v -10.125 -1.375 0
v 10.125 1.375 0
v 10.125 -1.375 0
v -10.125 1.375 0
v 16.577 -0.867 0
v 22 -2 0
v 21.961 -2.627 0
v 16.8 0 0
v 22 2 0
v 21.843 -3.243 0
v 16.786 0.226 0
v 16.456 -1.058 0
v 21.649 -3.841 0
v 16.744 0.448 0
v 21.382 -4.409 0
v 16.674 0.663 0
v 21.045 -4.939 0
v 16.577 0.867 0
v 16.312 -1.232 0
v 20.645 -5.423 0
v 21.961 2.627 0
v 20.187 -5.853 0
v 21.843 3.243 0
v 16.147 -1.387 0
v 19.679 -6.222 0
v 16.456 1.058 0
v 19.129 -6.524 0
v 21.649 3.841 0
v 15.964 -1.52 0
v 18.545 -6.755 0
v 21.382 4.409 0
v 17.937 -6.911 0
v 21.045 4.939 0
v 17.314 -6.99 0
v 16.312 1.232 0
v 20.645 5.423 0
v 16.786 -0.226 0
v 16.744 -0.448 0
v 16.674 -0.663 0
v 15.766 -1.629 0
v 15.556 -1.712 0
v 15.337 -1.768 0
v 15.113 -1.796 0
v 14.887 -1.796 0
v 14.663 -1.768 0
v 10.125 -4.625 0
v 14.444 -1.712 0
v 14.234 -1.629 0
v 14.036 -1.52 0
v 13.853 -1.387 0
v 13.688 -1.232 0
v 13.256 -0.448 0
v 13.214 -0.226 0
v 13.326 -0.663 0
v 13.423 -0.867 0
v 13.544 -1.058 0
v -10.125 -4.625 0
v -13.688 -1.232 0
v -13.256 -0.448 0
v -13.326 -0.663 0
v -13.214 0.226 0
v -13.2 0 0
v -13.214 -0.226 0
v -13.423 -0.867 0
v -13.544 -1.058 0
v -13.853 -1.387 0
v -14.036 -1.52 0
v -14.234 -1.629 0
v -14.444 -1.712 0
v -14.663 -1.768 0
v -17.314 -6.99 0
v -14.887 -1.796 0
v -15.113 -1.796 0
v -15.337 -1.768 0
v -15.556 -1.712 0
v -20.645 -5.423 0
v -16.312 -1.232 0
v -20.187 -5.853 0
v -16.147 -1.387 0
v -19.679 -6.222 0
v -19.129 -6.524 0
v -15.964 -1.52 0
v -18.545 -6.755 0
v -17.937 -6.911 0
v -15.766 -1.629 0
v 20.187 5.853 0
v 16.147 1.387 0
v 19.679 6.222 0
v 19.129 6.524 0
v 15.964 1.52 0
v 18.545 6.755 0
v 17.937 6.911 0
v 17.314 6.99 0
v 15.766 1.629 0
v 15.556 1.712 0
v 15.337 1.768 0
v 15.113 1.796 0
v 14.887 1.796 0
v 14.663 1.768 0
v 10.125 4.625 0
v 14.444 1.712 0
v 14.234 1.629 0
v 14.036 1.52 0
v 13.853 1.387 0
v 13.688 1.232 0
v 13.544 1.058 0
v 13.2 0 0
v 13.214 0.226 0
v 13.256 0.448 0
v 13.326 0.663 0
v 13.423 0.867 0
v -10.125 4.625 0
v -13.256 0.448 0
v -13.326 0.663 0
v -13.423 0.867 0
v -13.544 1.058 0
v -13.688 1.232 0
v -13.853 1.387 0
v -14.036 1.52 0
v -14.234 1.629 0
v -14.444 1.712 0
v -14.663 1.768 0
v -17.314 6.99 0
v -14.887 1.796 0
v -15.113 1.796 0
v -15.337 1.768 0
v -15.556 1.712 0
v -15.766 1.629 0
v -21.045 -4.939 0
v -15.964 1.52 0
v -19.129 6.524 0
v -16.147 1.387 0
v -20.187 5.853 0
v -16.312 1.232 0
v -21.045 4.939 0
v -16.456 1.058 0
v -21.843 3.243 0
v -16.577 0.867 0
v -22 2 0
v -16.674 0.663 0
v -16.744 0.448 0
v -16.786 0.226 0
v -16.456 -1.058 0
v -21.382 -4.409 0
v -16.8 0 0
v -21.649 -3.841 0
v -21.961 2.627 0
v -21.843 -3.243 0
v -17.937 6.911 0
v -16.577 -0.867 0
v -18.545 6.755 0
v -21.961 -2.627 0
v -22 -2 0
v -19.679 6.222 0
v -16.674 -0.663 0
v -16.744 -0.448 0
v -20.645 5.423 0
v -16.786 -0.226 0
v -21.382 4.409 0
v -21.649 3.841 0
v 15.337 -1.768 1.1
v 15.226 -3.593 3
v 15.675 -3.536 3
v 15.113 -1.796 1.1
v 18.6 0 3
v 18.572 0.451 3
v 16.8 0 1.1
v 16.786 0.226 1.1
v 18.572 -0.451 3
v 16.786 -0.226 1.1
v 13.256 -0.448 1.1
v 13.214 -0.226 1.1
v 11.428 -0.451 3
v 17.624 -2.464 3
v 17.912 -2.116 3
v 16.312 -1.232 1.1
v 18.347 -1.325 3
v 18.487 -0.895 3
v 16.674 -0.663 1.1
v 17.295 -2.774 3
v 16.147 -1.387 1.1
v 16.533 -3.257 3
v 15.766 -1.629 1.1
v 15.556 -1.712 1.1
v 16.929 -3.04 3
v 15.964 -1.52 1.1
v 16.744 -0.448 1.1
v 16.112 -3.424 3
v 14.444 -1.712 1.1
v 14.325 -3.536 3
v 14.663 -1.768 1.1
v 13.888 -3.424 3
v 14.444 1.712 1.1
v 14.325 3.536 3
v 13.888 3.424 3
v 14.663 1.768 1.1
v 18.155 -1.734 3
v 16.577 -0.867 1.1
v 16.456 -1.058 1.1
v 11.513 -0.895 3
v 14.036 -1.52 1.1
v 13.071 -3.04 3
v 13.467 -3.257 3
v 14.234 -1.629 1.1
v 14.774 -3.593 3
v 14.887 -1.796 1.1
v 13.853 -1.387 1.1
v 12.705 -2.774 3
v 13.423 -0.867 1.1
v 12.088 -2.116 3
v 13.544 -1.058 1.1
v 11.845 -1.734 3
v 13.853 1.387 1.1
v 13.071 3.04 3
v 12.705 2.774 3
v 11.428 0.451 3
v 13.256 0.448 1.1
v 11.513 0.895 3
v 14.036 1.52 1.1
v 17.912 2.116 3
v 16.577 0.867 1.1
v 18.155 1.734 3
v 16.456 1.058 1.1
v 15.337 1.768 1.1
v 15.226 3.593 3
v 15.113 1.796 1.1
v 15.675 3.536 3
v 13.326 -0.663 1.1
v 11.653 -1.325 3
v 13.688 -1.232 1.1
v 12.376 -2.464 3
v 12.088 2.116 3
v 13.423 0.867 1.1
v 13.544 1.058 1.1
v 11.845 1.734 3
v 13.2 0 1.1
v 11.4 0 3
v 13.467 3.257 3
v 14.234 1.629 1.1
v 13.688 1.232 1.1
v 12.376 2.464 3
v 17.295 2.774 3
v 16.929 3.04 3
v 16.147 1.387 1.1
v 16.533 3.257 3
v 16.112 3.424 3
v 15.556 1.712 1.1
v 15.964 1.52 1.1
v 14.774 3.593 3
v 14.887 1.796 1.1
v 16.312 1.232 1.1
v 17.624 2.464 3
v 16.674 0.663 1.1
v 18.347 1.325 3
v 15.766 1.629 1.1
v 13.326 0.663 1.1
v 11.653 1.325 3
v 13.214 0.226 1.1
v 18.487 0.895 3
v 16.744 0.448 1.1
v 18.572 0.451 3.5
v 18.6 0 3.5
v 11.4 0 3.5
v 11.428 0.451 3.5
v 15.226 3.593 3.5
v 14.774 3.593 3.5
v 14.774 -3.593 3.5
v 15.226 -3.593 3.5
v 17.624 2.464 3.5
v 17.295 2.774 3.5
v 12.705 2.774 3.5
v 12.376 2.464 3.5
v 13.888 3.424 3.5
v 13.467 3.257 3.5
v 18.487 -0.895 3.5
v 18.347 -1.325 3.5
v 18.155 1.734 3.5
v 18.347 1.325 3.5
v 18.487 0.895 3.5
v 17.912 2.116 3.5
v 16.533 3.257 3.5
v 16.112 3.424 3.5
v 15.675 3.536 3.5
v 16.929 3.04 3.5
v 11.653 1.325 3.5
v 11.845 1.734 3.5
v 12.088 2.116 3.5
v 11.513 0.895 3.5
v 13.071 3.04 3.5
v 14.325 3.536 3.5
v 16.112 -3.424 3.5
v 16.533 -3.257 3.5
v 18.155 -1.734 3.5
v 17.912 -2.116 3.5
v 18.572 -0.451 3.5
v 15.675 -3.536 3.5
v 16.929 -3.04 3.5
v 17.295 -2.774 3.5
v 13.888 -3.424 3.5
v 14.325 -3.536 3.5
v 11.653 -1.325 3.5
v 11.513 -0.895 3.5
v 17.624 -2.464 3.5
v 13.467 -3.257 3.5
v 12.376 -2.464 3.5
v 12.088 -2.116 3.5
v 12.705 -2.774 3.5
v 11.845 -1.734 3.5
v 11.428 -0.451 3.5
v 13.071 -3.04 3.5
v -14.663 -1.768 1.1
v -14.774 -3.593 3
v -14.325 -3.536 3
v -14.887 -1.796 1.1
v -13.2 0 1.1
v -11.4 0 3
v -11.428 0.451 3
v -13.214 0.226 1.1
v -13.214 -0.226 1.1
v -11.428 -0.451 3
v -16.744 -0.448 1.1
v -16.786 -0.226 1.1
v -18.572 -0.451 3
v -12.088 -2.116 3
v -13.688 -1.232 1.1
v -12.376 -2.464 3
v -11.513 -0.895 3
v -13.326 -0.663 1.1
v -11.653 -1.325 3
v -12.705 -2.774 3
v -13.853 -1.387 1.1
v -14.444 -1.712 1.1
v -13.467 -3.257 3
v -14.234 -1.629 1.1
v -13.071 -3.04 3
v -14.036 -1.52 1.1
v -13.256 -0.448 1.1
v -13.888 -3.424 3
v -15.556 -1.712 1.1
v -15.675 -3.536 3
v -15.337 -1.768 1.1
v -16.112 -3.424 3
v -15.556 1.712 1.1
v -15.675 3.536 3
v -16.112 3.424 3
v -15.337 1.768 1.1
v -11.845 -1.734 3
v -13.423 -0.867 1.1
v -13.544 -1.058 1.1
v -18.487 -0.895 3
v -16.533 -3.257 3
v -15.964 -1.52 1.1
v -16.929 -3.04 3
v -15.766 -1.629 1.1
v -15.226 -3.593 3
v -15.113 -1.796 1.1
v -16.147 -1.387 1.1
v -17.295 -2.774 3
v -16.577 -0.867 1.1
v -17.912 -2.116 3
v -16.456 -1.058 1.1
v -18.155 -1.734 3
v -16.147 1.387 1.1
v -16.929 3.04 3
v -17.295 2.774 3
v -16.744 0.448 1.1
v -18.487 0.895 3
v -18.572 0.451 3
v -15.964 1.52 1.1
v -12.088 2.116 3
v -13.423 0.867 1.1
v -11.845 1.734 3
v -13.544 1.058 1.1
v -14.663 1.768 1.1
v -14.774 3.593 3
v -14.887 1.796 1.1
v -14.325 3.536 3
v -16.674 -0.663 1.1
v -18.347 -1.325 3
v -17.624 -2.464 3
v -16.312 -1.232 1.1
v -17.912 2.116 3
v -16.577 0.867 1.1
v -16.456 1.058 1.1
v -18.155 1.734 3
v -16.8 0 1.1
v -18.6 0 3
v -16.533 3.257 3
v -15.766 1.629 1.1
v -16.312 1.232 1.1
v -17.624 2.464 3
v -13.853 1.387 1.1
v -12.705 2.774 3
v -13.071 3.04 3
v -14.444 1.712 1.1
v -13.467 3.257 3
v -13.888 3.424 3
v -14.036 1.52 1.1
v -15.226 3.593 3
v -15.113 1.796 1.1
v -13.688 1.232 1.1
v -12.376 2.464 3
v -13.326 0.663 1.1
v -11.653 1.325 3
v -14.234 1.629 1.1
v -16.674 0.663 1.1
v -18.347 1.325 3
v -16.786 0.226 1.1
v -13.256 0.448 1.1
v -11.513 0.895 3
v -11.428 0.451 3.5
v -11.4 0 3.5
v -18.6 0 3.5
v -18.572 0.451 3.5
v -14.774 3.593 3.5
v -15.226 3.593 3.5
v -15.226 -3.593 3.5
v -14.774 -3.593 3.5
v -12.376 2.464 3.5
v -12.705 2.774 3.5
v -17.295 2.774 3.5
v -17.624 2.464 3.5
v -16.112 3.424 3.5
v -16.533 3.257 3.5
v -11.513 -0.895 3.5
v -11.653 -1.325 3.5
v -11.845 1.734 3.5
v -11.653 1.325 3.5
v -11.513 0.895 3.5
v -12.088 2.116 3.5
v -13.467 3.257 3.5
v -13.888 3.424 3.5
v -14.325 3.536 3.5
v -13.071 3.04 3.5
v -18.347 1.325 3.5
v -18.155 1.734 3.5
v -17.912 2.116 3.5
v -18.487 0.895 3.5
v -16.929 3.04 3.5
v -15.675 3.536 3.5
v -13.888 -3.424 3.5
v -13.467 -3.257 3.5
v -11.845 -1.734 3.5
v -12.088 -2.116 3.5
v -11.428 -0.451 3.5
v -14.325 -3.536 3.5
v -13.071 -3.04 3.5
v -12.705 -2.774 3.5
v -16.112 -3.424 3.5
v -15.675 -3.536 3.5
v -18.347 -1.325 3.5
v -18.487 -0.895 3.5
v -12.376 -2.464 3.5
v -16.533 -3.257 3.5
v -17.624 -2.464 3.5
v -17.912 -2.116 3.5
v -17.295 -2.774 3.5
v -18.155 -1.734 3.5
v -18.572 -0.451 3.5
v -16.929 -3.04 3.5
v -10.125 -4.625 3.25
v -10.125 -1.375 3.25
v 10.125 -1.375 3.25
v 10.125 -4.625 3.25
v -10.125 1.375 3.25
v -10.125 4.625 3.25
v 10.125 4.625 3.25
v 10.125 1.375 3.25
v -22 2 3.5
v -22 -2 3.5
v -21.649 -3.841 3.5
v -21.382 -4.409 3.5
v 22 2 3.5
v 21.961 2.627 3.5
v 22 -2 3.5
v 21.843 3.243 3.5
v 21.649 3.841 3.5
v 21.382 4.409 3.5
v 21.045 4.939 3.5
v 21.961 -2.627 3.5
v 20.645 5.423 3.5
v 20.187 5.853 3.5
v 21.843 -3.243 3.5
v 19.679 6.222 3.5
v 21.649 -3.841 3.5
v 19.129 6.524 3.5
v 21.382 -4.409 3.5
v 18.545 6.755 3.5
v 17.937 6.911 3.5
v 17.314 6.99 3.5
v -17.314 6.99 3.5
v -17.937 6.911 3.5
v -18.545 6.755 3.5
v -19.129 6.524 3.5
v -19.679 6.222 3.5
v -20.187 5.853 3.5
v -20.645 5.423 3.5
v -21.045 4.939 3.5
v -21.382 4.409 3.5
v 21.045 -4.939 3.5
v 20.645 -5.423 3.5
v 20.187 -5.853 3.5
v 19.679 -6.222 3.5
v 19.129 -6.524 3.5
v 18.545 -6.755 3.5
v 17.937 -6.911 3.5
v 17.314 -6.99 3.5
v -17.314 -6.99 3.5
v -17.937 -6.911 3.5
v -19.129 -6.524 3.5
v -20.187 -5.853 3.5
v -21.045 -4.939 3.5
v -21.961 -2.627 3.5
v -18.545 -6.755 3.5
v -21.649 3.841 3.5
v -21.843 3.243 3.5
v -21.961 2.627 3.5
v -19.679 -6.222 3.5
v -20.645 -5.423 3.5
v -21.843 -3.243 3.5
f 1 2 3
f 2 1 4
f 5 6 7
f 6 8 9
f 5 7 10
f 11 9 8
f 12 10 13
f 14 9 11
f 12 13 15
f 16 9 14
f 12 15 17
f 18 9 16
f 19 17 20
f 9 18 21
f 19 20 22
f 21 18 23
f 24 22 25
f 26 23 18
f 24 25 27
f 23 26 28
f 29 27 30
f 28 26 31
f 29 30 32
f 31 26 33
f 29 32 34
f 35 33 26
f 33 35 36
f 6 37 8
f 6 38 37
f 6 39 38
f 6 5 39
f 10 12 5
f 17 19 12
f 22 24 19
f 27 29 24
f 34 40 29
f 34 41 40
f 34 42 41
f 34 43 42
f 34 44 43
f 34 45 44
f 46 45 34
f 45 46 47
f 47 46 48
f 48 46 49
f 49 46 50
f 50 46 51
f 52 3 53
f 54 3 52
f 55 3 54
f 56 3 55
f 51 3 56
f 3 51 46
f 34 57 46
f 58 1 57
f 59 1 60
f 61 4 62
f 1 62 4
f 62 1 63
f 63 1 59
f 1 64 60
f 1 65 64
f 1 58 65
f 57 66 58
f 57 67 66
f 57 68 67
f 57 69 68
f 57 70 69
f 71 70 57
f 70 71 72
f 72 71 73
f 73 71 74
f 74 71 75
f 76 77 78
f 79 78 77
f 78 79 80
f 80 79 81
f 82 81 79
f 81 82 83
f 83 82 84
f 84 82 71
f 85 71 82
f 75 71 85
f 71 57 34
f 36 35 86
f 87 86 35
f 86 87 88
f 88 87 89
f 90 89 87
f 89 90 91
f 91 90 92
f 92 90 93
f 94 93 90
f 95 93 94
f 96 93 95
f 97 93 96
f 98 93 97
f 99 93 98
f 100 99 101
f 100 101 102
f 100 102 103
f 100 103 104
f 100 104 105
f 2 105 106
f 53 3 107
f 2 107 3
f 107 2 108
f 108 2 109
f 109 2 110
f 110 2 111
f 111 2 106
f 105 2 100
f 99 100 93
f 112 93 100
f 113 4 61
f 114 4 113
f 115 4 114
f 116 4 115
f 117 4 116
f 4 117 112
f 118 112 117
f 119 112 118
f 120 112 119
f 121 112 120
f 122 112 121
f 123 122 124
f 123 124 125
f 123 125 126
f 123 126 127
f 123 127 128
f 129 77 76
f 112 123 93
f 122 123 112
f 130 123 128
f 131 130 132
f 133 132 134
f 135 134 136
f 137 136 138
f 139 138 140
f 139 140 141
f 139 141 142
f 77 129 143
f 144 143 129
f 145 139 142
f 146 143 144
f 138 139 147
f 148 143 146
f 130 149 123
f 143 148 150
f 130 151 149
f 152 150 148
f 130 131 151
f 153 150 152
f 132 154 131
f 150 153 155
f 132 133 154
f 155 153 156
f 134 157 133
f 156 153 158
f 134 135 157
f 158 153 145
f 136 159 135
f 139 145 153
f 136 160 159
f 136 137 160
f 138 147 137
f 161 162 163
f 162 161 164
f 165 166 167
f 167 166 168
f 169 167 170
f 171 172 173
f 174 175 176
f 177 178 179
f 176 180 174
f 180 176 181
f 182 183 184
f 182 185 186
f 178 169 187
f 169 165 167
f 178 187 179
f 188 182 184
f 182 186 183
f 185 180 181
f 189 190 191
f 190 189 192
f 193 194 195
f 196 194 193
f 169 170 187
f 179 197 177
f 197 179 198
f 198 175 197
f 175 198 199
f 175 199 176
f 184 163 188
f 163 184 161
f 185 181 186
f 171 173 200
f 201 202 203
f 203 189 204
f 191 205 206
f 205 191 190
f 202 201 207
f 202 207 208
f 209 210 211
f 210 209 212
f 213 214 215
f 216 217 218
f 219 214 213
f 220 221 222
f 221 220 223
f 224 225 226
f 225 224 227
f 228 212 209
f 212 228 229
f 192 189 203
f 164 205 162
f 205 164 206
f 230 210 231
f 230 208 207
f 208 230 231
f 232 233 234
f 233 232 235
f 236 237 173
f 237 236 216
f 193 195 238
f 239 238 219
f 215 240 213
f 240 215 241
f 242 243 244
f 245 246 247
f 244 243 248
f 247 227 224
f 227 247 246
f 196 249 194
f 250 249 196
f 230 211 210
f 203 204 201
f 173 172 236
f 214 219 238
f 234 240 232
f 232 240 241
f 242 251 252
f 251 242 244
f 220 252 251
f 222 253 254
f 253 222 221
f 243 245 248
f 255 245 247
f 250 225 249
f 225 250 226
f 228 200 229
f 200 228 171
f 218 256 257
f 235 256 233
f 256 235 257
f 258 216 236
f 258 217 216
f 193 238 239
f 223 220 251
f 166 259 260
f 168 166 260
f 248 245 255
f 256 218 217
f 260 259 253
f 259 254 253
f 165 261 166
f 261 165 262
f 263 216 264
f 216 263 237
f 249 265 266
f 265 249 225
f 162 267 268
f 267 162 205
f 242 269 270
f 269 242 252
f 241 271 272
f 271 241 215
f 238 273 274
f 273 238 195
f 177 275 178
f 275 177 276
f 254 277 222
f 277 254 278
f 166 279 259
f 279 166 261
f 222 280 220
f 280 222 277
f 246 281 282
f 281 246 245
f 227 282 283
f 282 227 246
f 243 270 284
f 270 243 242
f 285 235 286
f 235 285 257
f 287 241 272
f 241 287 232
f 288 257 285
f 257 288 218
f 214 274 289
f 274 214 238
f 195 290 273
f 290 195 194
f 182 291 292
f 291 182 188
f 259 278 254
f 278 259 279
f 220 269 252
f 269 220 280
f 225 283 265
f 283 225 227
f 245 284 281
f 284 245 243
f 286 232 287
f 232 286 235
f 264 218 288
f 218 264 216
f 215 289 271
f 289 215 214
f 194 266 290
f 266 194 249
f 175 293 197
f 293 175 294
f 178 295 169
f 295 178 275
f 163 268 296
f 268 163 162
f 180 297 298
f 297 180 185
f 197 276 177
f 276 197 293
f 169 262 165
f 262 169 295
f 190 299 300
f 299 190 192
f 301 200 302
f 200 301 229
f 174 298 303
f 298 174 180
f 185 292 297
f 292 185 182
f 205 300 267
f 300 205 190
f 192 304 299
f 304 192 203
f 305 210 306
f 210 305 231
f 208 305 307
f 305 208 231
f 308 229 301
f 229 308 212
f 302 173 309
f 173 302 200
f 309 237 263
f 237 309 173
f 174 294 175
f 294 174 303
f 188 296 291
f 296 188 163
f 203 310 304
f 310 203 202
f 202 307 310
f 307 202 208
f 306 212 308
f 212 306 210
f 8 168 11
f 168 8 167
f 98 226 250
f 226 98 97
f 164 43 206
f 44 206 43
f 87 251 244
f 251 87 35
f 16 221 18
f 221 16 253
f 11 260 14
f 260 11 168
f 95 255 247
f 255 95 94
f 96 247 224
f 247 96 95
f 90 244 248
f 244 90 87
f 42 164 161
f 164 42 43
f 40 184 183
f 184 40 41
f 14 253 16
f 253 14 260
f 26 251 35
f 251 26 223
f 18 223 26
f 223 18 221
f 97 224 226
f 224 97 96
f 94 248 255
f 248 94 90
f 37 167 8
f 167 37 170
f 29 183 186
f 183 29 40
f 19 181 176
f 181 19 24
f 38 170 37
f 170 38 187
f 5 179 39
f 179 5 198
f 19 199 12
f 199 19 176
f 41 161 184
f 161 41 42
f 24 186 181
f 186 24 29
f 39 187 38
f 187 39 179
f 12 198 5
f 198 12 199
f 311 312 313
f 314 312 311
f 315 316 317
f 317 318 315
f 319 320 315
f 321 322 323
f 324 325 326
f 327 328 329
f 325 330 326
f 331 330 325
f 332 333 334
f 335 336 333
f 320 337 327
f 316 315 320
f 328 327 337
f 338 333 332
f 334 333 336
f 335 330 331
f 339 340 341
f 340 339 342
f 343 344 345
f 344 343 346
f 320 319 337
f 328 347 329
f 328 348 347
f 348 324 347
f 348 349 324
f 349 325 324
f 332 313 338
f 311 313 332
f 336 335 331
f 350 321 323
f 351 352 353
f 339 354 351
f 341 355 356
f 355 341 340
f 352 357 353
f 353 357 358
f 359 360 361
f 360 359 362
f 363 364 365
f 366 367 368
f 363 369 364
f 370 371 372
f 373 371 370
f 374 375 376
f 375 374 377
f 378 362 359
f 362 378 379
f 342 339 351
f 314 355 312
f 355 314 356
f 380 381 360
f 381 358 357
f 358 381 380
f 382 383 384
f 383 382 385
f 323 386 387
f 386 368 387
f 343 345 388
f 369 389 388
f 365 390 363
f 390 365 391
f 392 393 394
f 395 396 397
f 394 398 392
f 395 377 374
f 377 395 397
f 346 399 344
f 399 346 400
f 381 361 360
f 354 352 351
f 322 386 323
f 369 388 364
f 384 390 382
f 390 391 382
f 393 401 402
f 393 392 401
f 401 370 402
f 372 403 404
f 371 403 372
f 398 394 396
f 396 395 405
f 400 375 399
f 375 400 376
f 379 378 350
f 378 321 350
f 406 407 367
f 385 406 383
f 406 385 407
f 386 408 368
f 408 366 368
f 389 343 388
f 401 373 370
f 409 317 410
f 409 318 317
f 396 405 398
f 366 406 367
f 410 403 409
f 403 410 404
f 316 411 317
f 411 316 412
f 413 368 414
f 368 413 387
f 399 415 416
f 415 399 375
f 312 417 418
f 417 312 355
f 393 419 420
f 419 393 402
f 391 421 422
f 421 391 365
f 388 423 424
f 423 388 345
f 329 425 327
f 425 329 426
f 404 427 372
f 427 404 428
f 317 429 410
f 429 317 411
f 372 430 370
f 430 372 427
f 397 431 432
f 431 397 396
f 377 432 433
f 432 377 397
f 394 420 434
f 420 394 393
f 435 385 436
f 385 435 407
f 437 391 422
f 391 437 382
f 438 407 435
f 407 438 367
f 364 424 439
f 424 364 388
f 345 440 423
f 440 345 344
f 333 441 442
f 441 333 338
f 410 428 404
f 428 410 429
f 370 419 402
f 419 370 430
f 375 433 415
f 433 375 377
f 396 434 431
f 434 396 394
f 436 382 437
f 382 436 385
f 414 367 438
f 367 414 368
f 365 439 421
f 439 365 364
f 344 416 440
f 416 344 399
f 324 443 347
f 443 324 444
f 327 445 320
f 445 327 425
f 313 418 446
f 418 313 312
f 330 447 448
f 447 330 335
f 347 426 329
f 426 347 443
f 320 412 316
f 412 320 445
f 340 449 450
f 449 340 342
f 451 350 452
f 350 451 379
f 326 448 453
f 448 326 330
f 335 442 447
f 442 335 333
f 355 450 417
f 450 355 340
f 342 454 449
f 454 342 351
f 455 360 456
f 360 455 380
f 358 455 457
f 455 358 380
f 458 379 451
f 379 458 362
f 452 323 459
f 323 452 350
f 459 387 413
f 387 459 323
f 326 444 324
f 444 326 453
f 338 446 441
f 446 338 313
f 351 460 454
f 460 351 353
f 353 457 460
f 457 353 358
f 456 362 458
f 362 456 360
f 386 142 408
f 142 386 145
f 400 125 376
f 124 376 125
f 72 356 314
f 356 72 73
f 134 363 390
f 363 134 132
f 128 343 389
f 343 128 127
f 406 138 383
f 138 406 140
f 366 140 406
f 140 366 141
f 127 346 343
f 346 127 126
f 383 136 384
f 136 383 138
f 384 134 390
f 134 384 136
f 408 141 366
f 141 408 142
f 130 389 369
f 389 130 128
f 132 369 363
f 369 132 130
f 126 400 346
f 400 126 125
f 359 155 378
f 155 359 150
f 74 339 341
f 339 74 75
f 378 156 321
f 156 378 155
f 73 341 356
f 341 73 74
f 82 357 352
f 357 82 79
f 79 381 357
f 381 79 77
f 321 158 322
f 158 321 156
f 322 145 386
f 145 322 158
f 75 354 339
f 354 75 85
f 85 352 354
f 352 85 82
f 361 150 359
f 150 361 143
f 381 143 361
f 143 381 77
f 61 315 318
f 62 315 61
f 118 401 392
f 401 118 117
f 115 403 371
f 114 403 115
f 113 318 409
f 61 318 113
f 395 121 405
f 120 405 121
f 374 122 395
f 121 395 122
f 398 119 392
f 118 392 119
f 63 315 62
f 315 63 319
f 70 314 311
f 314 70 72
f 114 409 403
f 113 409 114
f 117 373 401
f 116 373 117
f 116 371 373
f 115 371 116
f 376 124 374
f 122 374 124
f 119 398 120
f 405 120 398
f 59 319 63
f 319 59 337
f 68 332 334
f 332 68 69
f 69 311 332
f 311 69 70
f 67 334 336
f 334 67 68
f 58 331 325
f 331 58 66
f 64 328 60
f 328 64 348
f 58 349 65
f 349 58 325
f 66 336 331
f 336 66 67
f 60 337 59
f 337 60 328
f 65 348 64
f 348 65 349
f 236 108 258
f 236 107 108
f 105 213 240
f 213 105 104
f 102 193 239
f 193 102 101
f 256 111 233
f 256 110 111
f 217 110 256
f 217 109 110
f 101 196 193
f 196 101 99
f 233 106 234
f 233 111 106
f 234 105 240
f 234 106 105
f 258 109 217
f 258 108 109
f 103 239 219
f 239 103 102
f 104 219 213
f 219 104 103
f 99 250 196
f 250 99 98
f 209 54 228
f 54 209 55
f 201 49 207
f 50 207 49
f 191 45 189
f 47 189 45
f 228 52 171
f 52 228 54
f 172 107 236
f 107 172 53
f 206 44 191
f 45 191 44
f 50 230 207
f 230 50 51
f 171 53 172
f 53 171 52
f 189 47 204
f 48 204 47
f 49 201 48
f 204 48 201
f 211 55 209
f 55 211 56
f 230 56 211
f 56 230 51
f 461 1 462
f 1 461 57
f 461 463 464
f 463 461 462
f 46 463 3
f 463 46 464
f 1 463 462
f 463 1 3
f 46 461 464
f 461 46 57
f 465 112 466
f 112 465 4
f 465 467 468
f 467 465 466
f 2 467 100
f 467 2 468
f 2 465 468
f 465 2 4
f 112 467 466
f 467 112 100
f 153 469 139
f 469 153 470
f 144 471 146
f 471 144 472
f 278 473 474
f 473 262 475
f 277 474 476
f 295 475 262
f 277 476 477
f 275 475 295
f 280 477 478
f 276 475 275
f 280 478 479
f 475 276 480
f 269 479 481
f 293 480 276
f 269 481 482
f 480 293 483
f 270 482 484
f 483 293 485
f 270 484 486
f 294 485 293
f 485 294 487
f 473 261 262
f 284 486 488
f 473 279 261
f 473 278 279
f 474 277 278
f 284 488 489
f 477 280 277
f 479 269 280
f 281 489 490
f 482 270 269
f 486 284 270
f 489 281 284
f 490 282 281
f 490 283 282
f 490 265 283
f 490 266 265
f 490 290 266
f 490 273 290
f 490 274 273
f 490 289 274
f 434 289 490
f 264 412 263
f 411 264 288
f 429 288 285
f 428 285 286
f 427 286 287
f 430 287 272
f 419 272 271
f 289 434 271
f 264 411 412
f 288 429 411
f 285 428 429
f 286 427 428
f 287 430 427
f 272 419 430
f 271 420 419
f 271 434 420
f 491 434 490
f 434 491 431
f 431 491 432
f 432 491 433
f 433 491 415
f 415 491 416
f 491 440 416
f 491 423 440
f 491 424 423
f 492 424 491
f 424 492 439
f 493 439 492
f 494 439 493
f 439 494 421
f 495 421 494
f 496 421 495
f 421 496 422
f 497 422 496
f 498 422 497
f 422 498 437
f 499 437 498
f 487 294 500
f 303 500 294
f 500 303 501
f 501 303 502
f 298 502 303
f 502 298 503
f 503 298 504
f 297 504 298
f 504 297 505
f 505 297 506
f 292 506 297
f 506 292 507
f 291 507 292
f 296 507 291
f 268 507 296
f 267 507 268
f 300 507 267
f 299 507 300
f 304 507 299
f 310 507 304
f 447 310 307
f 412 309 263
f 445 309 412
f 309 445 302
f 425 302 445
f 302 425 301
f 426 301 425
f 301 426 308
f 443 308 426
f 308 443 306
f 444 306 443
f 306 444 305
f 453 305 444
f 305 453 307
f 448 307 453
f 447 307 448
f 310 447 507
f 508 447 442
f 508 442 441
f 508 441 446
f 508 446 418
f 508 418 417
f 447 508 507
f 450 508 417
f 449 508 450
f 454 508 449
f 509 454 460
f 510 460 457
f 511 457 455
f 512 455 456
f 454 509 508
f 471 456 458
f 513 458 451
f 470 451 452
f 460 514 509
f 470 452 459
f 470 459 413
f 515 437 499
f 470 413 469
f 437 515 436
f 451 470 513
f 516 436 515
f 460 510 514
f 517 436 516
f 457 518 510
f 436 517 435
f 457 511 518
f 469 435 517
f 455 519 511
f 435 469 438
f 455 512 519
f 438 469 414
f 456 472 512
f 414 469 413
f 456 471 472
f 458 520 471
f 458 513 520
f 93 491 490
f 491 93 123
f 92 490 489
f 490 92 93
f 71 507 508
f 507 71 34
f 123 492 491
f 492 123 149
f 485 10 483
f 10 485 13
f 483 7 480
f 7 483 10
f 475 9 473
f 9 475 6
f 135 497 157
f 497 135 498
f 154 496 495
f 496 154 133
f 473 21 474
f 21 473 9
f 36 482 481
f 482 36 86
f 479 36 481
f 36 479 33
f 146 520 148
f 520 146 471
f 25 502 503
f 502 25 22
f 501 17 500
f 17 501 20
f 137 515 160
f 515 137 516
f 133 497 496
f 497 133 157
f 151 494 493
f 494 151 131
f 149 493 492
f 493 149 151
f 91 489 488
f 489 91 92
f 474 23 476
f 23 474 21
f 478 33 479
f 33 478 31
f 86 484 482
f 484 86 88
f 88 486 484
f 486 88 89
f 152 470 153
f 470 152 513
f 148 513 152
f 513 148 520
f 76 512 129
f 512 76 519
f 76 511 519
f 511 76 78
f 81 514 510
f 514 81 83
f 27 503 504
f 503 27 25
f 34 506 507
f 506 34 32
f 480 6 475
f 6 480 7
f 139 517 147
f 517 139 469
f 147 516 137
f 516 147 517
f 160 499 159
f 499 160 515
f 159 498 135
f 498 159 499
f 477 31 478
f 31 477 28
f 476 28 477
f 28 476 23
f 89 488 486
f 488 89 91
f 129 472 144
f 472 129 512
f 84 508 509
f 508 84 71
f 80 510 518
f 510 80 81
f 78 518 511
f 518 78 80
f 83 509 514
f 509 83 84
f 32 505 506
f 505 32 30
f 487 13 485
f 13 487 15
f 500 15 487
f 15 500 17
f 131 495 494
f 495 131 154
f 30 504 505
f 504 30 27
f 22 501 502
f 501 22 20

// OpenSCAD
$fn = 50;


difference() {
	union() {
		hull() {
			translate(v = [-17.0000000000, 2.0000000000, 0]) {
				cylinder(h = 3.5000000000, r = 5);
			}
			translate(v = [17.0000000000, 2.0000000000, 0]) {
				cylinder(h = 3.5000000000, r = 5);
			}
			translate(v = [-17.0000000000, -2.0000000000, 0]) {
				cylinder(h = 3.5000000000, r = 5);
			}
			translate(v = [17.0000000000, -2.0000000000, 0]) {
				cylinder(h = 3.5000000000, r = 5);
			}
		}
	}
	union() {
		translate(v = [15.0000000000, 0, 3.0000000000]) {
			rotate(a = [0, 0, 0]) {
				difference() {
					union() {
						translate(v = [0, 0, -3.0000000000]) {
							cylinder(h = 3.0000000000, r = 1.5000000000);
						}
						translate(v = [0, 0, -1.9000000000]) {
							cylinder(h = 1.9000000000, r1 = 1.8000000000, r2 = 3.6000000000);
						}
						cylinder(h = 250, r = 3.6000000000);
						translate(v = [0, 0, -3.0000000000]) {
							cylinder(h = 3.0000000000, r = 1.8000000000);
						}
						translate(v = [0, 0, -3.0000000000]) {
							cylinder(h = 3.0000000000, r = 1.5000000000);
						}
					}
					union();
				}
			}
		}
		translate(v = [-15.0000000000, 0, 3.0000000000]) {
			rotate(a = [0, 0, 0]) {
				difference() {
					union() {
						translate(v = [0, 0, -3.0000000000]) {
							cylinder(h = 3.0000000000, r = 1.5000000000);
						}
						translate(v = [0, 0, -1.9000000000]) {
							cylinder(h = 1.9000000000, r1 = 1.8000000000, r2 = 3.6000000000);
						}
						cylinder(h = 250, r = 3.6000000000);
						translate(v = [0, 0, -3.0000000000]) {
							cylinder(h = 3.0000000000, r = 1.8000000000);
						}
						translate(v = [0, 0, -3.0000000000]) {
							cylinder(h = 3.0000000000, r = 1.5000000000);
						}
					}
					union();
				}
			}
		}
		translate(v = [-15.0000000000, 0.0000000000, 0]) {
			cylinder(h = 3.5000000000, r = 1.8000000000);
		}
		translate(v = [15.0000000000, 0.0000000000, 0]) {
			cylinder(h = 3.5000000000, r = 1.8000000000);
		}
		translate(v = [-15.0000000000, 0.0000000000, 0]) {
			cylinder(h = 3.5000000000, r = 1.8000000000);
		}
		translate(v = [15.0000000000, 0.0000000000, 0]) {
			cylinder(h = 3.5000000000, r = 1.8000000000);
		}
		translate(v = [-15.0000000000, 0.0000000000, 0]) {
			cylinder(h = 3.5000000000, r = 1.8000000000);
		}
		translate(v = [15.0000000000, 0.0000000000, 0]) {
			cylinder(h = 3.5000000000, r = 1.8000000000);
		}
		translate(v = [-15.0000000000, 0.0000000000, 0]) {
			cylinder(h = 3.5000000000, r = 1.8000000000);
		}
		translate(v = [15.0000000000, 0.0000000000, 0]) {
			cylinder(h = 3.5000000000, r = 1.8000000000);
		}
		#translate(v = [-10.1250000000, -4.6250000000, 0]) {
			cube(size = [20.2500000000, 3.2500000000, 3.2500000000]);
		}
		#translate(v = [-10.1250000000, 1.3750000000, 0]) {
			cube(size = [20.2500000000, 3.2500000000, 3.2500000000]);
		}
	}
}
